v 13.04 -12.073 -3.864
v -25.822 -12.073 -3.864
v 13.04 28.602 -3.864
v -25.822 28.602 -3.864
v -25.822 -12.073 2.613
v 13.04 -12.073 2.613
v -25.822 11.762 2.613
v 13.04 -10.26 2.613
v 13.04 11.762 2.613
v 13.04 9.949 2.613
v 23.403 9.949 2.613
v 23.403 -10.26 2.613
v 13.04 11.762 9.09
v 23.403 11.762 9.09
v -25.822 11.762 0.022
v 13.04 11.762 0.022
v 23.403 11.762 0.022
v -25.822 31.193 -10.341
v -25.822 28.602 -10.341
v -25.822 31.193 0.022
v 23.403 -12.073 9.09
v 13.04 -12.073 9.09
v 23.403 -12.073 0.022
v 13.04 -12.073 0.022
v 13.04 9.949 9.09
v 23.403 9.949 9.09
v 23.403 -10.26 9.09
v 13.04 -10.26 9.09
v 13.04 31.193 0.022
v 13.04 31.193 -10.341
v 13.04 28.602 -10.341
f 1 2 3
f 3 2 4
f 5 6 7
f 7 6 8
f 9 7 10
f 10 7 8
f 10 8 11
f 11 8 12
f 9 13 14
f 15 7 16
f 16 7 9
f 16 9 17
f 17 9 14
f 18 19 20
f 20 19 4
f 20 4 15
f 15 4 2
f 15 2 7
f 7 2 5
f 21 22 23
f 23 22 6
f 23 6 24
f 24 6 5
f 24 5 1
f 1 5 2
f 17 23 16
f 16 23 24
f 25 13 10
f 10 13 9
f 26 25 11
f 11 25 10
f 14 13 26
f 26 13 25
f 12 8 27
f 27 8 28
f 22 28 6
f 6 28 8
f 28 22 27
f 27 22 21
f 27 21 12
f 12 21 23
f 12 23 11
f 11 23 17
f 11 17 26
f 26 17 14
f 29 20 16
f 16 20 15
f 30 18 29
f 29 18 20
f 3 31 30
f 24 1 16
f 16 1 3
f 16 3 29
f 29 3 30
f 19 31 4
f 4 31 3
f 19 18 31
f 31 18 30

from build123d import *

# Parameters (mm, degrees)
SKETCH2_W           = 50.8
SKETCH2_H           = 23.368
BOSS_EXTRUDE1_DEPTH = 2.54
SKETCH3_W           = 12.7
SKETCH3_H           = 1.778
BOSS_EXTRUDE2_DEPTH = 6.35
SKETCH4_W           = 2.54
SKETCH4_H           = 8.89
CUT_EXTRUDE1_DEPTH  = 24.368
BOSS_EXTRUDE3_DEPTH = 3.81
SKETCH10_W          = 38.1
SKETCH10_H          = 2.54
BOSS_EXTRUDE6_DEPTH = 6.35
SCALE1_SCALE        = 1.02


with BuildPart() as part:
    # Sketch2 → Boss-Extrude1 (new body)
    with BuildSketch(Plane.XY):
        Rectangle(SKETCH2_W, SKETCH2_H)
    extrude(amount=BOSS_EXTRUDE1_DEPTH)

    # Sketch3 → Boss-Extrude2 (add)
    with BuildSketch(Plane.XY.offset(2.54)):
        with Locations((19.05, 10.795)):
            Rectangle(SKETCH3_W, SKETCH3_H)
        with Locations((19.05, -10.795)):
            Rectangle(SKETCH3_W, SKETCH3_H)
    extrude(amount=BOSS_EXTRUDE2_DEPTH)

    # Sketch4 → Cut-Extrude1 (cut, through all)
    with BuildSketch(Plane(origin=(0, 11.684, 0), x_dir=(1, 0, 0), z_dir=(0, 1, 0))):
        with Locations((24.13, -4.445)):
            Rectangle(SKETCH4_W, SKETCH4_H)
    extrude(amount=-CUT_EXTRUDE1_DEPTH, mode=Mode.SUBTRACT)

    # Sketch5 → Boss-Extrude3 (add)
    with BuildSketch(Plane(origin=(0, 0, 0), x_dir=(-1, 0, 0), z_dir=(0, 0, -1))):
        Polygon((25.4, 11.684), (25.4, -11.684), (-12.7, -11.684), (-12.7, 11.684), (-12.7, 30.734), (25.4, 30.734), align=None)
    extrude(amount=BOSS_EXTRUDE3_DEPTH)

    # Sketch10 → Boss-Extrude6 (add)
    with BuildSketch(Plane(origin=(0, 0, -3.81), x_dir=(-1, 0, 0), z_dir=(0, 0, -1))):
        with Locations((6.35, 29.464)):
            Rectangle(SKETCH10_W, SKETCH10_H)
    extrude(amount=BOSS_EXTRUDE6_DEPTH)


with BuildPart() as part_1:
    # Scale1: scaled about (-4.313949838, 7.779949755, -1.122390582)
    add(part.part.scale(SCALE1_SCALE).moved(Location((0.086278997, -0.155598995, 0.022447812))))


solid = part_1.part
